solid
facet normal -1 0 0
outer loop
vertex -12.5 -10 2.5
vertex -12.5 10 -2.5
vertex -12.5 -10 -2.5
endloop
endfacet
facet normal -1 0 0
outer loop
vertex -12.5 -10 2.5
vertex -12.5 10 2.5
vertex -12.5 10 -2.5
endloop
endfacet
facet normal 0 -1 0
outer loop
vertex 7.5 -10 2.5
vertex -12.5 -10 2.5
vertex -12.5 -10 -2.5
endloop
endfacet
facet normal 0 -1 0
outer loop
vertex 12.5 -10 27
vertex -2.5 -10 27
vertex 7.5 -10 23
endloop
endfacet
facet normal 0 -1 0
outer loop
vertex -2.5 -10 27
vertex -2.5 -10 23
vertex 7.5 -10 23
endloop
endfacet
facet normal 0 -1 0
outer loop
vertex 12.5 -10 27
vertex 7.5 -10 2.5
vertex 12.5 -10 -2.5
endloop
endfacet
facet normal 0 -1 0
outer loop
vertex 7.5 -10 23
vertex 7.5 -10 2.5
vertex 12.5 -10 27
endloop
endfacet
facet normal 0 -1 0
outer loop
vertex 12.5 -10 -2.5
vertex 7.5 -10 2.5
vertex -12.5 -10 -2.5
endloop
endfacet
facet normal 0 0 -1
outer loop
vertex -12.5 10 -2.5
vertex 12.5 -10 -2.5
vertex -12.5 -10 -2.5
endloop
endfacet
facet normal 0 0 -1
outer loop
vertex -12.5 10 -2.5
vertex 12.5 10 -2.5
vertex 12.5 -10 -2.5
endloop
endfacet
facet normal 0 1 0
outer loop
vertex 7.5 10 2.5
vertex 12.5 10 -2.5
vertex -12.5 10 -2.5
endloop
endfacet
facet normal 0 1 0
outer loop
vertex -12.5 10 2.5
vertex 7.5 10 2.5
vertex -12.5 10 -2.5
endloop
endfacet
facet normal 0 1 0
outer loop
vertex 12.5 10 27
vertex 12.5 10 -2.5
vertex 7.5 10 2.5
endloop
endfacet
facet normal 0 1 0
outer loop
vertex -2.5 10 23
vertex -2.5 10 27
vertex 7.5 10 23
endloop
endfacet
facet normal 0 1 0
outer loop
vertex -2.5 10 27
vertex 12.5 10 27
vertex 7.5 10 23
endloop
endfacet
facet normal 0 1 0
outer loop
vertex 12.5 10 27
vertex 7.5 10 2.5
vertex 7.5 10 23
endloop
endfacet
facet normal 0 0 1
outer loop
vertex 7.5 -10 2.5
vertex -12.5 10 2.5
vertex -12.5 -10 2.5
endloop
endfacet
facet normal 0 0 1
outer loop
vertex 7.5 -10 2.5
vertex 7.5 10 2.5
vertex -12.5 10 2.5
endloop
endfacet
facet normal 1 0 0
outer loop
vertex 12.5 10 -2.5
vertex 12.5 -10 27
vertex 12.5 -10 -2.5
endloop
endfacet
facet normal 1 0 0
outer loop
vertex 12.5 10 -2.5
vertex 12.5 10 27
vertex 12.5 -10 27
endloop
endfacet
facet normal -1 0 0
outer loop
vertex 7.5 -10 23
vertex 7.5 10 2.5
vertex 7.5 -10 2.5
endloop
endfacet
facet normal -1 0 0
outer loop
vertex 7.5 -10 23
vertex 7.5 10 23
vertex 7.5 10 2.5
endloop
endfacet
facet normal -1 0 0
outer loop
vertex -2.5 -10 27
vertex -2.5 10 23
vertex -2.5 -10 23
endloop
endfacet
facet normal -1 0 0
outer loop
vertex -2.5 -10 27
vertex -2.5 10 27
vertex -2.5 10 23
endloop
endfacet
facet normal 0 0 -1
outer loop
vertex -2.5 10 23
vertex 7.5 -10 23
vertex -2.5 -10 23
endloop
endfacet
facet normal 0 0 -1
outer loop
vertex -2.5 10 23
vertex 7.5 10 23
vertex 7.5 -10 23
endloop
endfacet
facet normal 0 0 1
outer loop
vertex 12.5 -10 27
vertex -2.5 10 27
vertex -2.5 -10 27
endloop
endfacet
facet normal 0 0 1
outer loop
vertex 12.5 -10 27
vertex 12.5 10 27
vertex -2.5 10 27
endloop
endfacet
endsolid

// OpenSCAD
hole = 1;

totalWidth = 20;
width = 25;
height = 10;
thickness = 5;

cube([width, totalWidth, thickness], center = true);

translate([height, 0, height+(height/10)])
	cube([thickness, totalWidth, height*2.55], center = true);

translate([thickness,0, width])
	cube([15, totalWidth, 4], center  = true);
